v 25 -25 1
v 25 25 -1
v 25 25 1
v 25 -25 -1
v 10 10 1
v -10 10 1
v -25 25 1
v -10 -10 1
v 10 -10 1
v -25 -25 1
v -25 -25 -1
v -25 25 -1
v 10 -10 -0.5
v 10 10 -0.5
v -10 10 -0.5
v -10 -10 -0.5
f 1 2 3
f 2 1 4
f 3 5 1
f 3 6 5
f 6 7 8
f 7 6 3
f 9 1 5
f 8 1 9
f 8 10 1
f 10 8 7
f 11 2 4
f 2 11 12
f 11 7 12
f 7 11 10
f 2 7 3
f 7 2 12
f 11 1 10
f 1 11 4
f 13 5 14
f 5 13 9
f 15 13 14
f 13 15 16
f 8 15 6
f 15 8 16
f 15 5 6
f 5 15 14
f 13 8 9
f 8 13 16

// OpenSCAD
// Parameters for the flat plate with square cutout
plate_length = 50;  // Length of the rectangular plate
plate_width = 50;   // Width of the rectangular plate
plate_thickness = 2; // Thickness of the plate
cutout_size = 20;   // Size of the square cutout

// Module to create the flat plate with a square cutout
module flat_plate_with_square_cutout() {
    difference() {
        // Create the rectangular plate
        cube([plate_length, plate_width, plate_thickness], center = true);
        // Create the square cutout
        translate([0, 0, plate_thickness / 2])
            cube([cutout_size, cutout_size, plate_thickness + 1], center = true);
    }
}

// Render the flat plate with square cutout
flat_plate_with_square_cutout();
